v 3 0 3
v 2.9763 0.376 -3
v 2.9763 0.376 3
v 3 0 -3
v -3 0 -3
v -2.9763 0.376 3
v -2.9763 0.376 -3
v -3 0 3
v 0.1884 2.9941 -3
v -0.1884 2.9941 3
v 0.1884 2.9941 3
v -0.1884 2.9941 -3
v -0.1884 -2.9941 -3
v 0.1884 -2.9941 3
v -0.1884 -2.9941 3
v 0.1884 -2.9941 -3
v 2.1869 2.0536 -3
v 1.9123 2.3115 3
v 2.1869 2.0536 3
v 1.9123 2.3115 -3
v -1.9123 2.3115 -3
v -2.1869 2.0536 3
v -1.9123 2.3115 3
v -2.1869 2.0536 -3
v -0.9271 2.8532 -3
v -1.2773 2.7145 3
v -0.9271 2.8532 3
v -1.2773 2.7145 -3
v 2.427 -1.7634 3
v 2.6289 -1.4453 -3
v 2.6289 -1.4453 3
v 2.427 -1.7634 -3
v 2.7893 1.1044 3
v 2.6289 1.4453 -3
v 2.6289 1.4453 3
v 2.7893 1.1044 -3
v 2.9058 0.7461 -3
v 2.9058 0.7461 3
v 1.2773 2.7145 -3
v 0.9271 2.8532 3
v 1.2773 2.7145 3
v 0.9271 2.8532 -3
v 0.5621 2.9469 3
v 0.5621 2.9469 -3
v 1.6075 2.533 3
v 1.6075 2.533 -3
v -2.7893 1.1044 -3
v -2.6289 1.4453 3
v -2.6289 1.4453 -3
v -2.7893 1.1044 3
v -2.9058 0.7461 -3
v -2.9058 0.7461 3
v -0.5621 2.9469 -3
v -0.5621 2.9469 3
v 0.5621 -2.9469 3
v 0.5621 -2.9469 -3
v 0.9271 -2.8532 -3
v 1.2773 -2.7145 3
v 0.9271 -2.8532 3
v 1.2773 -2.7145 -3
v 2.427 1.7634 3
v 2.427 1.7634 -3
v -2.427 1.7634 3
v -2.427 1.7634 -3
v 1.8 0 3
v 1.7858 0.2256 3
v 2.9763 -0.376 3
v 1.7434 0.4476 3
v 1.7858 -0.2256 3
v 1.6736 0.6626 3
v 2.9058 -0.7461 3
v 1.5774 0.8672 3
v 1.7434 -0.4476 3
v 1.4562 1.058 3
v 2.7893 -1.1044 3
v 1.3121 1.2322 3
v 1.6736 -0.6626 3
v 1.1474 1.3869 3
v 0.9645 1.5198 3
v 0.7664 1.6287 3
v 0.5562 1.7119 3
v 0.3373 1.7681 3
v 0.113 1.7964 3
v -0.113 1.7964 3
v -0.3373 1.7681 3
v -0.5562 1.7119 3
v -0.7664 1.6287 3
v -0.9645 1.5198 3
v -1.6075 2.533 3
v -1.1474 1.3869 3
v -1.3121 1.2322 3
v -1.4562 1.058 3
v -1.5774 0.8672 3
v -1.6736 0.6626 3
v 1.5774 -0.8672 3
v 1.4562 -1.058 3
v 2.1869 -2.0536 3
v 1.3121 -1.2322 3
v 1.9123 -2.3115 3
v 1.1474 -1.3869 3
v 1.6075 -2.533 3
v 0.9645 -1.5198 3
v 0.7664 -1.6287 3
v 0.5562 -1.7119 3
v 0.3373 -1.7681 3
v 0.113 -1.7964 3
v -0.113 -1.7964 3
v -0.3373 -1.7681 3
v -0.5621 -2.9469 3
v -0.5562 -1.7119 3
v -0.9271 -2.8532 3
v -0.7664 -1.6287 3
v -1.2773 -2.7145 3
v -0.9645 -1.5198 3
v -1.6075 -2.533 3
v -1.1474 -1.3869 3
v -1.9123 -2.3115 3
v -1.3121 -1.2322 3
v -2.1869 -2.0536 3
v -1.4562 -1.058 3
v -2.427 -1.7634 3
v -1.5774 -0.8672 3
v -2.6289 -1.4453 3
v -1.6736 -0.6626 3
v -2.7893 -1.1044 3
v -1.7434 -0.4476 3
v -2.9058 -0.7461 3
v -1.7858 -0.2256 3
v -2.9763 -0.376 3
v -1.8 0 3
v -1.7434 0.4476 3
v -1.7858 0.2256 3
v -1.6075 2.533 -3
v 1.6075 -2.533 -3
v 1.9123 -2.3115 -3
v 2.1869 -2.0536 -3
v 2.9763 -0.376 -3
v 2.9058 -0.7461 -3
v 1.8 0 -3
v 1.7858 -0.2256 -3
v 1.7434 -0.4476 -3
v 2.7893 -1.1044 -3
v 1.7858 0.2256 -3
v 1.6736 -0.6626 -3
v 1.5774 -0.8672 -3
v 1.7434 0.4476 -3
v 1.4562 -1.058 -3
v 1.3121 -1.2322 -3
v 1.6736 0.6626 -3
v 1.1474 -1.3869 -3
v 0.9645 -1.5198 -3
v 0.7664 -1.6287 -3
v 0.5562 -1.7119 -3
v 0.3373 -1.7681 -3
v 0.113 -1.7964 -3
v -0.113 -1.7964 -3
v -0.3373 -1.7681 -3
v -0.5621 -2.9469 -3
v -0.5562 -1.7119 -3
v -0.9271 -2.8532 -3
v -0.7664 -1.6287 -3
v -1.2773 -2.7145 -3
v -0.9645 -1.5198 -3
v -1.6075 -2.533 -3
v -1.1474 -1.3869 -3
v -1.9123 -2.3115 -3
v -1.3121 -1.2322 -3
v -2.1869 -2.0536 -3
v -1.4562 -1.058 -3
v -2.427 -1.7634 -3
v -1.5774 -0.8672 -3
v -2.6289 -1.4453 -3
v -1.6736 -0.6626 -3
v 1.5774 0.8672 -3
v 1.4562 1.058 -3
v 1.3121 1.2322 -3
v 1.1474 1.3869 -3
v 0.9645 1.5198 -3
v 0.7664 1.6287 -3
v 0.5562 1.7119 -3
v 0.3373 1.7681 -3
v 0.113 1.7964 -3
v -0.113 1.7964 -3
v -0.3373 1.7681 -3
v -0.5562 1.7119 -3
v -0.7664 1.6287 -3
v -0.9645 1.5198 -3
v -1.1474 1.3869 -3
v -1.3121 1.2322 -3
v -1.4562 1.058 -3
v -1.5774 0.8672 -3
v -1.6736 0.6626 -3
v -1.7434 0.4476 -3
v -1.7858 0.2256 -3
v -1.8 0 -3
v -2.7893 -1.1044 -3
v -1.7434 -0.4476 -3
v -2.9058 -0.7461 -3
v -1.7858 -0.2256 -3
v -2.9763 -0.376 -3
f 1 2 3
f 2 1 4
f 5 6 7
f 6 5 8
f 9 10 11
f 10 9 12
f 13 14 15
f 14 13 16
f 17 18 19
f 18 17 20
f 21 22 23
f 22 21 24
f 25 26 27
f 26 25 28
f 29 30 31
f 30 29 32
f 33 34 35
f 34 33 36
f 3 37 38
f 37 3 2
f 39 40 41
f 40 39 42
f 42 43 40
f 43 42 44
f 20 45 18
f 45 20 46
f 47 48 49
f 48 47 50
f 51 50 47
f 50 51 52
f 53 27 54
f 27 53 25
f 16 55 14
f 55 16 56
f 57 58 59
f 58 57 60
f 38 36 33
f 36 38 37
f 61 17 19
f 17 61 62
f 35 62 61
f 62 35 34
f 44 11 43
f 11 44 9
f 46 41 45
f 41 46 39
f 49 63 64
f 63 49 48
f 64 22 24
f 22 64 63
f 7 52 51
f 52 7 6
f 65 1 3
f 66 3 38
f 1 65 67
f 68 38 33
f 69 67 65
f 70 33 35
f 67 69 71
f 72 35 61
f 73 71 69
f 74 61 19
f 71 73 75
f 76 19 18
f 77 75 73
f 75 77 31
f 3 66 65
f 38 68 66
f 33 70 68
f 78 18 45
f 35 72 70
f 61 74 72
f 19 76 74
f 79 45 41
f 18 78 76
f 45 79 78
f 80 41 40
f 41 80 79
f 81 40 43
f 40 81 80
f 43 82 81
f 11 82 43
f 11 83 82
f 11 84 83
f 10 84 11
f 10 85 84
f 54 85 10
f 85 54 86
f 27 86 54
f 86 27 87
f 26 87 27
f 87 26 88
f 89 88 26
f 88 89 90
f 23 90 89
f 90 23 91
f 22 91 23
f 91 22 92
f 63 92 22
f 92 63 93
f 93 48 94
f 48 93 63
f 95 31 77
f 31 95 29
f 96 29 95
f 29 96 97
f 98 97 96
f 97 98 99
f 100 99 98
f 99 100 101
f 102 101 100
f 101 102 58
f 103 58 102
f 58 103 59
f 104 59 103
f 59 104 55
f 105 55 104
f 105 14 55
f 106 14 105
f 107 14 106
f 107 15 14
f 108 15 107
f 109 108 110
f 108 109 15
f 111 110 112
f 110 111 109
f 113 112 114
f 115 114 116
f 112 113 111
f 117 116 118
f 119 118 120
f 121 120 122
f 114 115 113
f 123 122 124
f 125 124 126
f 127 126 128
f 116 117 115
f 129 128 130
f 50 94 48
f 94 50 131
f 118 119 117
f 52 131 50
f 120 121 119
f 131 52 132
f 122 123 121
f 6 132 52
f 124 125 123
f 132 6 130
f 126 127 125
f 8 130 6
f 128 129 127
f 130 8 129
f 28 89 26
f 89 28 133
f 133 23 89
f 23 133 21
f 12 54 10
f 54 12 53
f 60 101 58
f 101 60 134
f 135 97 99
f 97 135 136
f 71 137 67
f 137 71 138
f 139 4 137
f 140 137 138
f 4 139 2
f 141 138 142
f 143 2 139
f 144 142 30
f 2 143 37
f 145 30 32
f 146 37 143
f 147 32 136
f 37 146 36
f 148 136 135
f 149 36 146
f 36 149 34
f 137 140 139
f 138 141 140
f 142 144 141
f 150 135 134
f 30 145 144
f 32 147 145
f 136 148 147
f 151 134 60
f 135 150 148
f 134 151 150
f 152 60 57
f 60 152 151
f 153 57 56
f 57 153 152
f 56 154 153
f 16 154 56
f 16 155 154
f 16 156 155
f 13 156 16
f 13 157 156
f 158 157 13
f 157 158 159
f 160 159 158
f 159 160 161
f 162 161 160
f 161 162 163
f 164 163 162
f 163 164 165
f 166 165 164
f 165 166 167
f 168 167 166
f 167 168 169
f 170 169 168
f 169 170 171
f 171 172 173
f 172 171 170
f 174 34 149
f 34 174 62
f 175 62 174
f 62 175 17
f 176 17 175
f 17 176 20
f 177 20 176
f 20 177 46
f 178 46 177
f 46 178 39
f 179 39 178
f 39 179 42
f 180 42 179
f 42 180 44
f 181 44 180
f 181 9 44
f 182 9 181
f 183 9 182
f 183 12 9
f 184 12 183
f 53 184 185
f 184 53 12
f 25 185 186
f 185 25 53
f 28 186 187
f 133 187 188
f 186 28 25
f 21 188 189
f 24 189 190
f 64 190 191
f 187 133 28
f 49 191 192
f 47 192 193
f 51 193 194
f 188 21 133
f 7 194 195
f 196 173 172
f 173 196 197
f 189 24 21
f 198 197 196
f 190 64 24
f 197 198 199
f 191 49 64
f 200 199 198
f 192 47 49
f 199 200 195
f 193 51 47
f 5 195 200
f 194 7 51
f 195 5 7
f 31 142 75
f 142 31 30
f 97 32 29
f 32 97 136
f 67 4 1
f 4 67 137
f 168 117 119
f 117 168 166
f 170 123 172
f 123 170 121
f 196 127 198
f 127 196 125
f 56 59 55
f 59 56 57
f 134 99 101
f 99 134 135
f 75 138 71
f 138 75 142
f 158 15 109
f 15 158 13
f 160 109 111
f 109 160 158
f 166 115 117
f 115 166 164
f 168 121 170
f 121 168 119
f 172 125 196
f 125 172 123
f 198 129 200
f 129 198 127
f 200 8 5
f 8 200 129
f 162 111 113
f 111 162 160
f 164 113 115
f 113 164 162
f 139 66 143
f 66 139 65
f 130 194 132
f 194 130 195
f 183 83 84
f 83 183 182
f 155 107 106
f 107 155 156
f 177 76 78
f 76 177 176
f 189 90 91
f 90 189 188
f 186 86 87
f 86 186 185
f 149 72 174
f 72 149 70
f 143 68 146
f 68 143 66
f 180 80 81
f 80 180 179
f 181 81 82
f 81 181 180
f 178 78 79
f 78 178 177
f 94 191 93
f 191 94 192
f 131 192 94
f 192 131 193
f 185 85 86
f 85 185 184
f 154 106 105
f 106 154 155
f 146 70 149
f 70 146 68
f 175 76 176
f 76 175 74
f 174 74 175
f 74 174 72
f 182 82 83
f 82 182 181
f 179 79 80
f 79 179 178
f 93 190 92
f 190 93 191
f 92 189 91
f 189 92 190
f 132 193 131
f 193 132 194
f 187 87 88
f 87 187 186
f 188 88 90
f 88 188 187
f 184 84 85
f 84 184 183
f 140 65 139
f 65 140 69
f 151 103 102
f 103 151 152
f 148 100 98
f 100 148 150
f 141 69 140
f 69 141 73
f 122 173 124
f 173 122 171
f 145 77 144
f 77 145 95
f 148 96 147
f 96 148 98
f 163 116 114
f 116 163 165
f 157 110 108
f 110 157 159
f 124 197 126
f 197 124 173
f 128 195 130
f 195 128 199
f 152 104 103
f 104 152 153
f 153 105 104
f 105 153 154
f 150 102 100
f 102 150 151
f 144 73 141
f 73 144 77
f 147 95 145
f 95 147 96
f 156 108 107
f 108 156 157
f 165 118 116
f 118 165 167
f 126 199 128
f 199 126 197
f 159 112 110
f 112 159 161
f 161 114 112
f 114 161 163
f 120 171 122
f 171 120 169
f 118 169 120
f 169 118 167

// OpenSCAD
$fn = 50;


difference() {
	union() {
		translate(v = [0, 0, -3.0000000000]) {
			cylinder(h = 6, r = 3.0000000000);
		}
	}
	union() {
		translate(v = [0, 0, -100.0000000000]) {
			cylinder(h = 200, r = 1.8000000000);
		}
	}
}
